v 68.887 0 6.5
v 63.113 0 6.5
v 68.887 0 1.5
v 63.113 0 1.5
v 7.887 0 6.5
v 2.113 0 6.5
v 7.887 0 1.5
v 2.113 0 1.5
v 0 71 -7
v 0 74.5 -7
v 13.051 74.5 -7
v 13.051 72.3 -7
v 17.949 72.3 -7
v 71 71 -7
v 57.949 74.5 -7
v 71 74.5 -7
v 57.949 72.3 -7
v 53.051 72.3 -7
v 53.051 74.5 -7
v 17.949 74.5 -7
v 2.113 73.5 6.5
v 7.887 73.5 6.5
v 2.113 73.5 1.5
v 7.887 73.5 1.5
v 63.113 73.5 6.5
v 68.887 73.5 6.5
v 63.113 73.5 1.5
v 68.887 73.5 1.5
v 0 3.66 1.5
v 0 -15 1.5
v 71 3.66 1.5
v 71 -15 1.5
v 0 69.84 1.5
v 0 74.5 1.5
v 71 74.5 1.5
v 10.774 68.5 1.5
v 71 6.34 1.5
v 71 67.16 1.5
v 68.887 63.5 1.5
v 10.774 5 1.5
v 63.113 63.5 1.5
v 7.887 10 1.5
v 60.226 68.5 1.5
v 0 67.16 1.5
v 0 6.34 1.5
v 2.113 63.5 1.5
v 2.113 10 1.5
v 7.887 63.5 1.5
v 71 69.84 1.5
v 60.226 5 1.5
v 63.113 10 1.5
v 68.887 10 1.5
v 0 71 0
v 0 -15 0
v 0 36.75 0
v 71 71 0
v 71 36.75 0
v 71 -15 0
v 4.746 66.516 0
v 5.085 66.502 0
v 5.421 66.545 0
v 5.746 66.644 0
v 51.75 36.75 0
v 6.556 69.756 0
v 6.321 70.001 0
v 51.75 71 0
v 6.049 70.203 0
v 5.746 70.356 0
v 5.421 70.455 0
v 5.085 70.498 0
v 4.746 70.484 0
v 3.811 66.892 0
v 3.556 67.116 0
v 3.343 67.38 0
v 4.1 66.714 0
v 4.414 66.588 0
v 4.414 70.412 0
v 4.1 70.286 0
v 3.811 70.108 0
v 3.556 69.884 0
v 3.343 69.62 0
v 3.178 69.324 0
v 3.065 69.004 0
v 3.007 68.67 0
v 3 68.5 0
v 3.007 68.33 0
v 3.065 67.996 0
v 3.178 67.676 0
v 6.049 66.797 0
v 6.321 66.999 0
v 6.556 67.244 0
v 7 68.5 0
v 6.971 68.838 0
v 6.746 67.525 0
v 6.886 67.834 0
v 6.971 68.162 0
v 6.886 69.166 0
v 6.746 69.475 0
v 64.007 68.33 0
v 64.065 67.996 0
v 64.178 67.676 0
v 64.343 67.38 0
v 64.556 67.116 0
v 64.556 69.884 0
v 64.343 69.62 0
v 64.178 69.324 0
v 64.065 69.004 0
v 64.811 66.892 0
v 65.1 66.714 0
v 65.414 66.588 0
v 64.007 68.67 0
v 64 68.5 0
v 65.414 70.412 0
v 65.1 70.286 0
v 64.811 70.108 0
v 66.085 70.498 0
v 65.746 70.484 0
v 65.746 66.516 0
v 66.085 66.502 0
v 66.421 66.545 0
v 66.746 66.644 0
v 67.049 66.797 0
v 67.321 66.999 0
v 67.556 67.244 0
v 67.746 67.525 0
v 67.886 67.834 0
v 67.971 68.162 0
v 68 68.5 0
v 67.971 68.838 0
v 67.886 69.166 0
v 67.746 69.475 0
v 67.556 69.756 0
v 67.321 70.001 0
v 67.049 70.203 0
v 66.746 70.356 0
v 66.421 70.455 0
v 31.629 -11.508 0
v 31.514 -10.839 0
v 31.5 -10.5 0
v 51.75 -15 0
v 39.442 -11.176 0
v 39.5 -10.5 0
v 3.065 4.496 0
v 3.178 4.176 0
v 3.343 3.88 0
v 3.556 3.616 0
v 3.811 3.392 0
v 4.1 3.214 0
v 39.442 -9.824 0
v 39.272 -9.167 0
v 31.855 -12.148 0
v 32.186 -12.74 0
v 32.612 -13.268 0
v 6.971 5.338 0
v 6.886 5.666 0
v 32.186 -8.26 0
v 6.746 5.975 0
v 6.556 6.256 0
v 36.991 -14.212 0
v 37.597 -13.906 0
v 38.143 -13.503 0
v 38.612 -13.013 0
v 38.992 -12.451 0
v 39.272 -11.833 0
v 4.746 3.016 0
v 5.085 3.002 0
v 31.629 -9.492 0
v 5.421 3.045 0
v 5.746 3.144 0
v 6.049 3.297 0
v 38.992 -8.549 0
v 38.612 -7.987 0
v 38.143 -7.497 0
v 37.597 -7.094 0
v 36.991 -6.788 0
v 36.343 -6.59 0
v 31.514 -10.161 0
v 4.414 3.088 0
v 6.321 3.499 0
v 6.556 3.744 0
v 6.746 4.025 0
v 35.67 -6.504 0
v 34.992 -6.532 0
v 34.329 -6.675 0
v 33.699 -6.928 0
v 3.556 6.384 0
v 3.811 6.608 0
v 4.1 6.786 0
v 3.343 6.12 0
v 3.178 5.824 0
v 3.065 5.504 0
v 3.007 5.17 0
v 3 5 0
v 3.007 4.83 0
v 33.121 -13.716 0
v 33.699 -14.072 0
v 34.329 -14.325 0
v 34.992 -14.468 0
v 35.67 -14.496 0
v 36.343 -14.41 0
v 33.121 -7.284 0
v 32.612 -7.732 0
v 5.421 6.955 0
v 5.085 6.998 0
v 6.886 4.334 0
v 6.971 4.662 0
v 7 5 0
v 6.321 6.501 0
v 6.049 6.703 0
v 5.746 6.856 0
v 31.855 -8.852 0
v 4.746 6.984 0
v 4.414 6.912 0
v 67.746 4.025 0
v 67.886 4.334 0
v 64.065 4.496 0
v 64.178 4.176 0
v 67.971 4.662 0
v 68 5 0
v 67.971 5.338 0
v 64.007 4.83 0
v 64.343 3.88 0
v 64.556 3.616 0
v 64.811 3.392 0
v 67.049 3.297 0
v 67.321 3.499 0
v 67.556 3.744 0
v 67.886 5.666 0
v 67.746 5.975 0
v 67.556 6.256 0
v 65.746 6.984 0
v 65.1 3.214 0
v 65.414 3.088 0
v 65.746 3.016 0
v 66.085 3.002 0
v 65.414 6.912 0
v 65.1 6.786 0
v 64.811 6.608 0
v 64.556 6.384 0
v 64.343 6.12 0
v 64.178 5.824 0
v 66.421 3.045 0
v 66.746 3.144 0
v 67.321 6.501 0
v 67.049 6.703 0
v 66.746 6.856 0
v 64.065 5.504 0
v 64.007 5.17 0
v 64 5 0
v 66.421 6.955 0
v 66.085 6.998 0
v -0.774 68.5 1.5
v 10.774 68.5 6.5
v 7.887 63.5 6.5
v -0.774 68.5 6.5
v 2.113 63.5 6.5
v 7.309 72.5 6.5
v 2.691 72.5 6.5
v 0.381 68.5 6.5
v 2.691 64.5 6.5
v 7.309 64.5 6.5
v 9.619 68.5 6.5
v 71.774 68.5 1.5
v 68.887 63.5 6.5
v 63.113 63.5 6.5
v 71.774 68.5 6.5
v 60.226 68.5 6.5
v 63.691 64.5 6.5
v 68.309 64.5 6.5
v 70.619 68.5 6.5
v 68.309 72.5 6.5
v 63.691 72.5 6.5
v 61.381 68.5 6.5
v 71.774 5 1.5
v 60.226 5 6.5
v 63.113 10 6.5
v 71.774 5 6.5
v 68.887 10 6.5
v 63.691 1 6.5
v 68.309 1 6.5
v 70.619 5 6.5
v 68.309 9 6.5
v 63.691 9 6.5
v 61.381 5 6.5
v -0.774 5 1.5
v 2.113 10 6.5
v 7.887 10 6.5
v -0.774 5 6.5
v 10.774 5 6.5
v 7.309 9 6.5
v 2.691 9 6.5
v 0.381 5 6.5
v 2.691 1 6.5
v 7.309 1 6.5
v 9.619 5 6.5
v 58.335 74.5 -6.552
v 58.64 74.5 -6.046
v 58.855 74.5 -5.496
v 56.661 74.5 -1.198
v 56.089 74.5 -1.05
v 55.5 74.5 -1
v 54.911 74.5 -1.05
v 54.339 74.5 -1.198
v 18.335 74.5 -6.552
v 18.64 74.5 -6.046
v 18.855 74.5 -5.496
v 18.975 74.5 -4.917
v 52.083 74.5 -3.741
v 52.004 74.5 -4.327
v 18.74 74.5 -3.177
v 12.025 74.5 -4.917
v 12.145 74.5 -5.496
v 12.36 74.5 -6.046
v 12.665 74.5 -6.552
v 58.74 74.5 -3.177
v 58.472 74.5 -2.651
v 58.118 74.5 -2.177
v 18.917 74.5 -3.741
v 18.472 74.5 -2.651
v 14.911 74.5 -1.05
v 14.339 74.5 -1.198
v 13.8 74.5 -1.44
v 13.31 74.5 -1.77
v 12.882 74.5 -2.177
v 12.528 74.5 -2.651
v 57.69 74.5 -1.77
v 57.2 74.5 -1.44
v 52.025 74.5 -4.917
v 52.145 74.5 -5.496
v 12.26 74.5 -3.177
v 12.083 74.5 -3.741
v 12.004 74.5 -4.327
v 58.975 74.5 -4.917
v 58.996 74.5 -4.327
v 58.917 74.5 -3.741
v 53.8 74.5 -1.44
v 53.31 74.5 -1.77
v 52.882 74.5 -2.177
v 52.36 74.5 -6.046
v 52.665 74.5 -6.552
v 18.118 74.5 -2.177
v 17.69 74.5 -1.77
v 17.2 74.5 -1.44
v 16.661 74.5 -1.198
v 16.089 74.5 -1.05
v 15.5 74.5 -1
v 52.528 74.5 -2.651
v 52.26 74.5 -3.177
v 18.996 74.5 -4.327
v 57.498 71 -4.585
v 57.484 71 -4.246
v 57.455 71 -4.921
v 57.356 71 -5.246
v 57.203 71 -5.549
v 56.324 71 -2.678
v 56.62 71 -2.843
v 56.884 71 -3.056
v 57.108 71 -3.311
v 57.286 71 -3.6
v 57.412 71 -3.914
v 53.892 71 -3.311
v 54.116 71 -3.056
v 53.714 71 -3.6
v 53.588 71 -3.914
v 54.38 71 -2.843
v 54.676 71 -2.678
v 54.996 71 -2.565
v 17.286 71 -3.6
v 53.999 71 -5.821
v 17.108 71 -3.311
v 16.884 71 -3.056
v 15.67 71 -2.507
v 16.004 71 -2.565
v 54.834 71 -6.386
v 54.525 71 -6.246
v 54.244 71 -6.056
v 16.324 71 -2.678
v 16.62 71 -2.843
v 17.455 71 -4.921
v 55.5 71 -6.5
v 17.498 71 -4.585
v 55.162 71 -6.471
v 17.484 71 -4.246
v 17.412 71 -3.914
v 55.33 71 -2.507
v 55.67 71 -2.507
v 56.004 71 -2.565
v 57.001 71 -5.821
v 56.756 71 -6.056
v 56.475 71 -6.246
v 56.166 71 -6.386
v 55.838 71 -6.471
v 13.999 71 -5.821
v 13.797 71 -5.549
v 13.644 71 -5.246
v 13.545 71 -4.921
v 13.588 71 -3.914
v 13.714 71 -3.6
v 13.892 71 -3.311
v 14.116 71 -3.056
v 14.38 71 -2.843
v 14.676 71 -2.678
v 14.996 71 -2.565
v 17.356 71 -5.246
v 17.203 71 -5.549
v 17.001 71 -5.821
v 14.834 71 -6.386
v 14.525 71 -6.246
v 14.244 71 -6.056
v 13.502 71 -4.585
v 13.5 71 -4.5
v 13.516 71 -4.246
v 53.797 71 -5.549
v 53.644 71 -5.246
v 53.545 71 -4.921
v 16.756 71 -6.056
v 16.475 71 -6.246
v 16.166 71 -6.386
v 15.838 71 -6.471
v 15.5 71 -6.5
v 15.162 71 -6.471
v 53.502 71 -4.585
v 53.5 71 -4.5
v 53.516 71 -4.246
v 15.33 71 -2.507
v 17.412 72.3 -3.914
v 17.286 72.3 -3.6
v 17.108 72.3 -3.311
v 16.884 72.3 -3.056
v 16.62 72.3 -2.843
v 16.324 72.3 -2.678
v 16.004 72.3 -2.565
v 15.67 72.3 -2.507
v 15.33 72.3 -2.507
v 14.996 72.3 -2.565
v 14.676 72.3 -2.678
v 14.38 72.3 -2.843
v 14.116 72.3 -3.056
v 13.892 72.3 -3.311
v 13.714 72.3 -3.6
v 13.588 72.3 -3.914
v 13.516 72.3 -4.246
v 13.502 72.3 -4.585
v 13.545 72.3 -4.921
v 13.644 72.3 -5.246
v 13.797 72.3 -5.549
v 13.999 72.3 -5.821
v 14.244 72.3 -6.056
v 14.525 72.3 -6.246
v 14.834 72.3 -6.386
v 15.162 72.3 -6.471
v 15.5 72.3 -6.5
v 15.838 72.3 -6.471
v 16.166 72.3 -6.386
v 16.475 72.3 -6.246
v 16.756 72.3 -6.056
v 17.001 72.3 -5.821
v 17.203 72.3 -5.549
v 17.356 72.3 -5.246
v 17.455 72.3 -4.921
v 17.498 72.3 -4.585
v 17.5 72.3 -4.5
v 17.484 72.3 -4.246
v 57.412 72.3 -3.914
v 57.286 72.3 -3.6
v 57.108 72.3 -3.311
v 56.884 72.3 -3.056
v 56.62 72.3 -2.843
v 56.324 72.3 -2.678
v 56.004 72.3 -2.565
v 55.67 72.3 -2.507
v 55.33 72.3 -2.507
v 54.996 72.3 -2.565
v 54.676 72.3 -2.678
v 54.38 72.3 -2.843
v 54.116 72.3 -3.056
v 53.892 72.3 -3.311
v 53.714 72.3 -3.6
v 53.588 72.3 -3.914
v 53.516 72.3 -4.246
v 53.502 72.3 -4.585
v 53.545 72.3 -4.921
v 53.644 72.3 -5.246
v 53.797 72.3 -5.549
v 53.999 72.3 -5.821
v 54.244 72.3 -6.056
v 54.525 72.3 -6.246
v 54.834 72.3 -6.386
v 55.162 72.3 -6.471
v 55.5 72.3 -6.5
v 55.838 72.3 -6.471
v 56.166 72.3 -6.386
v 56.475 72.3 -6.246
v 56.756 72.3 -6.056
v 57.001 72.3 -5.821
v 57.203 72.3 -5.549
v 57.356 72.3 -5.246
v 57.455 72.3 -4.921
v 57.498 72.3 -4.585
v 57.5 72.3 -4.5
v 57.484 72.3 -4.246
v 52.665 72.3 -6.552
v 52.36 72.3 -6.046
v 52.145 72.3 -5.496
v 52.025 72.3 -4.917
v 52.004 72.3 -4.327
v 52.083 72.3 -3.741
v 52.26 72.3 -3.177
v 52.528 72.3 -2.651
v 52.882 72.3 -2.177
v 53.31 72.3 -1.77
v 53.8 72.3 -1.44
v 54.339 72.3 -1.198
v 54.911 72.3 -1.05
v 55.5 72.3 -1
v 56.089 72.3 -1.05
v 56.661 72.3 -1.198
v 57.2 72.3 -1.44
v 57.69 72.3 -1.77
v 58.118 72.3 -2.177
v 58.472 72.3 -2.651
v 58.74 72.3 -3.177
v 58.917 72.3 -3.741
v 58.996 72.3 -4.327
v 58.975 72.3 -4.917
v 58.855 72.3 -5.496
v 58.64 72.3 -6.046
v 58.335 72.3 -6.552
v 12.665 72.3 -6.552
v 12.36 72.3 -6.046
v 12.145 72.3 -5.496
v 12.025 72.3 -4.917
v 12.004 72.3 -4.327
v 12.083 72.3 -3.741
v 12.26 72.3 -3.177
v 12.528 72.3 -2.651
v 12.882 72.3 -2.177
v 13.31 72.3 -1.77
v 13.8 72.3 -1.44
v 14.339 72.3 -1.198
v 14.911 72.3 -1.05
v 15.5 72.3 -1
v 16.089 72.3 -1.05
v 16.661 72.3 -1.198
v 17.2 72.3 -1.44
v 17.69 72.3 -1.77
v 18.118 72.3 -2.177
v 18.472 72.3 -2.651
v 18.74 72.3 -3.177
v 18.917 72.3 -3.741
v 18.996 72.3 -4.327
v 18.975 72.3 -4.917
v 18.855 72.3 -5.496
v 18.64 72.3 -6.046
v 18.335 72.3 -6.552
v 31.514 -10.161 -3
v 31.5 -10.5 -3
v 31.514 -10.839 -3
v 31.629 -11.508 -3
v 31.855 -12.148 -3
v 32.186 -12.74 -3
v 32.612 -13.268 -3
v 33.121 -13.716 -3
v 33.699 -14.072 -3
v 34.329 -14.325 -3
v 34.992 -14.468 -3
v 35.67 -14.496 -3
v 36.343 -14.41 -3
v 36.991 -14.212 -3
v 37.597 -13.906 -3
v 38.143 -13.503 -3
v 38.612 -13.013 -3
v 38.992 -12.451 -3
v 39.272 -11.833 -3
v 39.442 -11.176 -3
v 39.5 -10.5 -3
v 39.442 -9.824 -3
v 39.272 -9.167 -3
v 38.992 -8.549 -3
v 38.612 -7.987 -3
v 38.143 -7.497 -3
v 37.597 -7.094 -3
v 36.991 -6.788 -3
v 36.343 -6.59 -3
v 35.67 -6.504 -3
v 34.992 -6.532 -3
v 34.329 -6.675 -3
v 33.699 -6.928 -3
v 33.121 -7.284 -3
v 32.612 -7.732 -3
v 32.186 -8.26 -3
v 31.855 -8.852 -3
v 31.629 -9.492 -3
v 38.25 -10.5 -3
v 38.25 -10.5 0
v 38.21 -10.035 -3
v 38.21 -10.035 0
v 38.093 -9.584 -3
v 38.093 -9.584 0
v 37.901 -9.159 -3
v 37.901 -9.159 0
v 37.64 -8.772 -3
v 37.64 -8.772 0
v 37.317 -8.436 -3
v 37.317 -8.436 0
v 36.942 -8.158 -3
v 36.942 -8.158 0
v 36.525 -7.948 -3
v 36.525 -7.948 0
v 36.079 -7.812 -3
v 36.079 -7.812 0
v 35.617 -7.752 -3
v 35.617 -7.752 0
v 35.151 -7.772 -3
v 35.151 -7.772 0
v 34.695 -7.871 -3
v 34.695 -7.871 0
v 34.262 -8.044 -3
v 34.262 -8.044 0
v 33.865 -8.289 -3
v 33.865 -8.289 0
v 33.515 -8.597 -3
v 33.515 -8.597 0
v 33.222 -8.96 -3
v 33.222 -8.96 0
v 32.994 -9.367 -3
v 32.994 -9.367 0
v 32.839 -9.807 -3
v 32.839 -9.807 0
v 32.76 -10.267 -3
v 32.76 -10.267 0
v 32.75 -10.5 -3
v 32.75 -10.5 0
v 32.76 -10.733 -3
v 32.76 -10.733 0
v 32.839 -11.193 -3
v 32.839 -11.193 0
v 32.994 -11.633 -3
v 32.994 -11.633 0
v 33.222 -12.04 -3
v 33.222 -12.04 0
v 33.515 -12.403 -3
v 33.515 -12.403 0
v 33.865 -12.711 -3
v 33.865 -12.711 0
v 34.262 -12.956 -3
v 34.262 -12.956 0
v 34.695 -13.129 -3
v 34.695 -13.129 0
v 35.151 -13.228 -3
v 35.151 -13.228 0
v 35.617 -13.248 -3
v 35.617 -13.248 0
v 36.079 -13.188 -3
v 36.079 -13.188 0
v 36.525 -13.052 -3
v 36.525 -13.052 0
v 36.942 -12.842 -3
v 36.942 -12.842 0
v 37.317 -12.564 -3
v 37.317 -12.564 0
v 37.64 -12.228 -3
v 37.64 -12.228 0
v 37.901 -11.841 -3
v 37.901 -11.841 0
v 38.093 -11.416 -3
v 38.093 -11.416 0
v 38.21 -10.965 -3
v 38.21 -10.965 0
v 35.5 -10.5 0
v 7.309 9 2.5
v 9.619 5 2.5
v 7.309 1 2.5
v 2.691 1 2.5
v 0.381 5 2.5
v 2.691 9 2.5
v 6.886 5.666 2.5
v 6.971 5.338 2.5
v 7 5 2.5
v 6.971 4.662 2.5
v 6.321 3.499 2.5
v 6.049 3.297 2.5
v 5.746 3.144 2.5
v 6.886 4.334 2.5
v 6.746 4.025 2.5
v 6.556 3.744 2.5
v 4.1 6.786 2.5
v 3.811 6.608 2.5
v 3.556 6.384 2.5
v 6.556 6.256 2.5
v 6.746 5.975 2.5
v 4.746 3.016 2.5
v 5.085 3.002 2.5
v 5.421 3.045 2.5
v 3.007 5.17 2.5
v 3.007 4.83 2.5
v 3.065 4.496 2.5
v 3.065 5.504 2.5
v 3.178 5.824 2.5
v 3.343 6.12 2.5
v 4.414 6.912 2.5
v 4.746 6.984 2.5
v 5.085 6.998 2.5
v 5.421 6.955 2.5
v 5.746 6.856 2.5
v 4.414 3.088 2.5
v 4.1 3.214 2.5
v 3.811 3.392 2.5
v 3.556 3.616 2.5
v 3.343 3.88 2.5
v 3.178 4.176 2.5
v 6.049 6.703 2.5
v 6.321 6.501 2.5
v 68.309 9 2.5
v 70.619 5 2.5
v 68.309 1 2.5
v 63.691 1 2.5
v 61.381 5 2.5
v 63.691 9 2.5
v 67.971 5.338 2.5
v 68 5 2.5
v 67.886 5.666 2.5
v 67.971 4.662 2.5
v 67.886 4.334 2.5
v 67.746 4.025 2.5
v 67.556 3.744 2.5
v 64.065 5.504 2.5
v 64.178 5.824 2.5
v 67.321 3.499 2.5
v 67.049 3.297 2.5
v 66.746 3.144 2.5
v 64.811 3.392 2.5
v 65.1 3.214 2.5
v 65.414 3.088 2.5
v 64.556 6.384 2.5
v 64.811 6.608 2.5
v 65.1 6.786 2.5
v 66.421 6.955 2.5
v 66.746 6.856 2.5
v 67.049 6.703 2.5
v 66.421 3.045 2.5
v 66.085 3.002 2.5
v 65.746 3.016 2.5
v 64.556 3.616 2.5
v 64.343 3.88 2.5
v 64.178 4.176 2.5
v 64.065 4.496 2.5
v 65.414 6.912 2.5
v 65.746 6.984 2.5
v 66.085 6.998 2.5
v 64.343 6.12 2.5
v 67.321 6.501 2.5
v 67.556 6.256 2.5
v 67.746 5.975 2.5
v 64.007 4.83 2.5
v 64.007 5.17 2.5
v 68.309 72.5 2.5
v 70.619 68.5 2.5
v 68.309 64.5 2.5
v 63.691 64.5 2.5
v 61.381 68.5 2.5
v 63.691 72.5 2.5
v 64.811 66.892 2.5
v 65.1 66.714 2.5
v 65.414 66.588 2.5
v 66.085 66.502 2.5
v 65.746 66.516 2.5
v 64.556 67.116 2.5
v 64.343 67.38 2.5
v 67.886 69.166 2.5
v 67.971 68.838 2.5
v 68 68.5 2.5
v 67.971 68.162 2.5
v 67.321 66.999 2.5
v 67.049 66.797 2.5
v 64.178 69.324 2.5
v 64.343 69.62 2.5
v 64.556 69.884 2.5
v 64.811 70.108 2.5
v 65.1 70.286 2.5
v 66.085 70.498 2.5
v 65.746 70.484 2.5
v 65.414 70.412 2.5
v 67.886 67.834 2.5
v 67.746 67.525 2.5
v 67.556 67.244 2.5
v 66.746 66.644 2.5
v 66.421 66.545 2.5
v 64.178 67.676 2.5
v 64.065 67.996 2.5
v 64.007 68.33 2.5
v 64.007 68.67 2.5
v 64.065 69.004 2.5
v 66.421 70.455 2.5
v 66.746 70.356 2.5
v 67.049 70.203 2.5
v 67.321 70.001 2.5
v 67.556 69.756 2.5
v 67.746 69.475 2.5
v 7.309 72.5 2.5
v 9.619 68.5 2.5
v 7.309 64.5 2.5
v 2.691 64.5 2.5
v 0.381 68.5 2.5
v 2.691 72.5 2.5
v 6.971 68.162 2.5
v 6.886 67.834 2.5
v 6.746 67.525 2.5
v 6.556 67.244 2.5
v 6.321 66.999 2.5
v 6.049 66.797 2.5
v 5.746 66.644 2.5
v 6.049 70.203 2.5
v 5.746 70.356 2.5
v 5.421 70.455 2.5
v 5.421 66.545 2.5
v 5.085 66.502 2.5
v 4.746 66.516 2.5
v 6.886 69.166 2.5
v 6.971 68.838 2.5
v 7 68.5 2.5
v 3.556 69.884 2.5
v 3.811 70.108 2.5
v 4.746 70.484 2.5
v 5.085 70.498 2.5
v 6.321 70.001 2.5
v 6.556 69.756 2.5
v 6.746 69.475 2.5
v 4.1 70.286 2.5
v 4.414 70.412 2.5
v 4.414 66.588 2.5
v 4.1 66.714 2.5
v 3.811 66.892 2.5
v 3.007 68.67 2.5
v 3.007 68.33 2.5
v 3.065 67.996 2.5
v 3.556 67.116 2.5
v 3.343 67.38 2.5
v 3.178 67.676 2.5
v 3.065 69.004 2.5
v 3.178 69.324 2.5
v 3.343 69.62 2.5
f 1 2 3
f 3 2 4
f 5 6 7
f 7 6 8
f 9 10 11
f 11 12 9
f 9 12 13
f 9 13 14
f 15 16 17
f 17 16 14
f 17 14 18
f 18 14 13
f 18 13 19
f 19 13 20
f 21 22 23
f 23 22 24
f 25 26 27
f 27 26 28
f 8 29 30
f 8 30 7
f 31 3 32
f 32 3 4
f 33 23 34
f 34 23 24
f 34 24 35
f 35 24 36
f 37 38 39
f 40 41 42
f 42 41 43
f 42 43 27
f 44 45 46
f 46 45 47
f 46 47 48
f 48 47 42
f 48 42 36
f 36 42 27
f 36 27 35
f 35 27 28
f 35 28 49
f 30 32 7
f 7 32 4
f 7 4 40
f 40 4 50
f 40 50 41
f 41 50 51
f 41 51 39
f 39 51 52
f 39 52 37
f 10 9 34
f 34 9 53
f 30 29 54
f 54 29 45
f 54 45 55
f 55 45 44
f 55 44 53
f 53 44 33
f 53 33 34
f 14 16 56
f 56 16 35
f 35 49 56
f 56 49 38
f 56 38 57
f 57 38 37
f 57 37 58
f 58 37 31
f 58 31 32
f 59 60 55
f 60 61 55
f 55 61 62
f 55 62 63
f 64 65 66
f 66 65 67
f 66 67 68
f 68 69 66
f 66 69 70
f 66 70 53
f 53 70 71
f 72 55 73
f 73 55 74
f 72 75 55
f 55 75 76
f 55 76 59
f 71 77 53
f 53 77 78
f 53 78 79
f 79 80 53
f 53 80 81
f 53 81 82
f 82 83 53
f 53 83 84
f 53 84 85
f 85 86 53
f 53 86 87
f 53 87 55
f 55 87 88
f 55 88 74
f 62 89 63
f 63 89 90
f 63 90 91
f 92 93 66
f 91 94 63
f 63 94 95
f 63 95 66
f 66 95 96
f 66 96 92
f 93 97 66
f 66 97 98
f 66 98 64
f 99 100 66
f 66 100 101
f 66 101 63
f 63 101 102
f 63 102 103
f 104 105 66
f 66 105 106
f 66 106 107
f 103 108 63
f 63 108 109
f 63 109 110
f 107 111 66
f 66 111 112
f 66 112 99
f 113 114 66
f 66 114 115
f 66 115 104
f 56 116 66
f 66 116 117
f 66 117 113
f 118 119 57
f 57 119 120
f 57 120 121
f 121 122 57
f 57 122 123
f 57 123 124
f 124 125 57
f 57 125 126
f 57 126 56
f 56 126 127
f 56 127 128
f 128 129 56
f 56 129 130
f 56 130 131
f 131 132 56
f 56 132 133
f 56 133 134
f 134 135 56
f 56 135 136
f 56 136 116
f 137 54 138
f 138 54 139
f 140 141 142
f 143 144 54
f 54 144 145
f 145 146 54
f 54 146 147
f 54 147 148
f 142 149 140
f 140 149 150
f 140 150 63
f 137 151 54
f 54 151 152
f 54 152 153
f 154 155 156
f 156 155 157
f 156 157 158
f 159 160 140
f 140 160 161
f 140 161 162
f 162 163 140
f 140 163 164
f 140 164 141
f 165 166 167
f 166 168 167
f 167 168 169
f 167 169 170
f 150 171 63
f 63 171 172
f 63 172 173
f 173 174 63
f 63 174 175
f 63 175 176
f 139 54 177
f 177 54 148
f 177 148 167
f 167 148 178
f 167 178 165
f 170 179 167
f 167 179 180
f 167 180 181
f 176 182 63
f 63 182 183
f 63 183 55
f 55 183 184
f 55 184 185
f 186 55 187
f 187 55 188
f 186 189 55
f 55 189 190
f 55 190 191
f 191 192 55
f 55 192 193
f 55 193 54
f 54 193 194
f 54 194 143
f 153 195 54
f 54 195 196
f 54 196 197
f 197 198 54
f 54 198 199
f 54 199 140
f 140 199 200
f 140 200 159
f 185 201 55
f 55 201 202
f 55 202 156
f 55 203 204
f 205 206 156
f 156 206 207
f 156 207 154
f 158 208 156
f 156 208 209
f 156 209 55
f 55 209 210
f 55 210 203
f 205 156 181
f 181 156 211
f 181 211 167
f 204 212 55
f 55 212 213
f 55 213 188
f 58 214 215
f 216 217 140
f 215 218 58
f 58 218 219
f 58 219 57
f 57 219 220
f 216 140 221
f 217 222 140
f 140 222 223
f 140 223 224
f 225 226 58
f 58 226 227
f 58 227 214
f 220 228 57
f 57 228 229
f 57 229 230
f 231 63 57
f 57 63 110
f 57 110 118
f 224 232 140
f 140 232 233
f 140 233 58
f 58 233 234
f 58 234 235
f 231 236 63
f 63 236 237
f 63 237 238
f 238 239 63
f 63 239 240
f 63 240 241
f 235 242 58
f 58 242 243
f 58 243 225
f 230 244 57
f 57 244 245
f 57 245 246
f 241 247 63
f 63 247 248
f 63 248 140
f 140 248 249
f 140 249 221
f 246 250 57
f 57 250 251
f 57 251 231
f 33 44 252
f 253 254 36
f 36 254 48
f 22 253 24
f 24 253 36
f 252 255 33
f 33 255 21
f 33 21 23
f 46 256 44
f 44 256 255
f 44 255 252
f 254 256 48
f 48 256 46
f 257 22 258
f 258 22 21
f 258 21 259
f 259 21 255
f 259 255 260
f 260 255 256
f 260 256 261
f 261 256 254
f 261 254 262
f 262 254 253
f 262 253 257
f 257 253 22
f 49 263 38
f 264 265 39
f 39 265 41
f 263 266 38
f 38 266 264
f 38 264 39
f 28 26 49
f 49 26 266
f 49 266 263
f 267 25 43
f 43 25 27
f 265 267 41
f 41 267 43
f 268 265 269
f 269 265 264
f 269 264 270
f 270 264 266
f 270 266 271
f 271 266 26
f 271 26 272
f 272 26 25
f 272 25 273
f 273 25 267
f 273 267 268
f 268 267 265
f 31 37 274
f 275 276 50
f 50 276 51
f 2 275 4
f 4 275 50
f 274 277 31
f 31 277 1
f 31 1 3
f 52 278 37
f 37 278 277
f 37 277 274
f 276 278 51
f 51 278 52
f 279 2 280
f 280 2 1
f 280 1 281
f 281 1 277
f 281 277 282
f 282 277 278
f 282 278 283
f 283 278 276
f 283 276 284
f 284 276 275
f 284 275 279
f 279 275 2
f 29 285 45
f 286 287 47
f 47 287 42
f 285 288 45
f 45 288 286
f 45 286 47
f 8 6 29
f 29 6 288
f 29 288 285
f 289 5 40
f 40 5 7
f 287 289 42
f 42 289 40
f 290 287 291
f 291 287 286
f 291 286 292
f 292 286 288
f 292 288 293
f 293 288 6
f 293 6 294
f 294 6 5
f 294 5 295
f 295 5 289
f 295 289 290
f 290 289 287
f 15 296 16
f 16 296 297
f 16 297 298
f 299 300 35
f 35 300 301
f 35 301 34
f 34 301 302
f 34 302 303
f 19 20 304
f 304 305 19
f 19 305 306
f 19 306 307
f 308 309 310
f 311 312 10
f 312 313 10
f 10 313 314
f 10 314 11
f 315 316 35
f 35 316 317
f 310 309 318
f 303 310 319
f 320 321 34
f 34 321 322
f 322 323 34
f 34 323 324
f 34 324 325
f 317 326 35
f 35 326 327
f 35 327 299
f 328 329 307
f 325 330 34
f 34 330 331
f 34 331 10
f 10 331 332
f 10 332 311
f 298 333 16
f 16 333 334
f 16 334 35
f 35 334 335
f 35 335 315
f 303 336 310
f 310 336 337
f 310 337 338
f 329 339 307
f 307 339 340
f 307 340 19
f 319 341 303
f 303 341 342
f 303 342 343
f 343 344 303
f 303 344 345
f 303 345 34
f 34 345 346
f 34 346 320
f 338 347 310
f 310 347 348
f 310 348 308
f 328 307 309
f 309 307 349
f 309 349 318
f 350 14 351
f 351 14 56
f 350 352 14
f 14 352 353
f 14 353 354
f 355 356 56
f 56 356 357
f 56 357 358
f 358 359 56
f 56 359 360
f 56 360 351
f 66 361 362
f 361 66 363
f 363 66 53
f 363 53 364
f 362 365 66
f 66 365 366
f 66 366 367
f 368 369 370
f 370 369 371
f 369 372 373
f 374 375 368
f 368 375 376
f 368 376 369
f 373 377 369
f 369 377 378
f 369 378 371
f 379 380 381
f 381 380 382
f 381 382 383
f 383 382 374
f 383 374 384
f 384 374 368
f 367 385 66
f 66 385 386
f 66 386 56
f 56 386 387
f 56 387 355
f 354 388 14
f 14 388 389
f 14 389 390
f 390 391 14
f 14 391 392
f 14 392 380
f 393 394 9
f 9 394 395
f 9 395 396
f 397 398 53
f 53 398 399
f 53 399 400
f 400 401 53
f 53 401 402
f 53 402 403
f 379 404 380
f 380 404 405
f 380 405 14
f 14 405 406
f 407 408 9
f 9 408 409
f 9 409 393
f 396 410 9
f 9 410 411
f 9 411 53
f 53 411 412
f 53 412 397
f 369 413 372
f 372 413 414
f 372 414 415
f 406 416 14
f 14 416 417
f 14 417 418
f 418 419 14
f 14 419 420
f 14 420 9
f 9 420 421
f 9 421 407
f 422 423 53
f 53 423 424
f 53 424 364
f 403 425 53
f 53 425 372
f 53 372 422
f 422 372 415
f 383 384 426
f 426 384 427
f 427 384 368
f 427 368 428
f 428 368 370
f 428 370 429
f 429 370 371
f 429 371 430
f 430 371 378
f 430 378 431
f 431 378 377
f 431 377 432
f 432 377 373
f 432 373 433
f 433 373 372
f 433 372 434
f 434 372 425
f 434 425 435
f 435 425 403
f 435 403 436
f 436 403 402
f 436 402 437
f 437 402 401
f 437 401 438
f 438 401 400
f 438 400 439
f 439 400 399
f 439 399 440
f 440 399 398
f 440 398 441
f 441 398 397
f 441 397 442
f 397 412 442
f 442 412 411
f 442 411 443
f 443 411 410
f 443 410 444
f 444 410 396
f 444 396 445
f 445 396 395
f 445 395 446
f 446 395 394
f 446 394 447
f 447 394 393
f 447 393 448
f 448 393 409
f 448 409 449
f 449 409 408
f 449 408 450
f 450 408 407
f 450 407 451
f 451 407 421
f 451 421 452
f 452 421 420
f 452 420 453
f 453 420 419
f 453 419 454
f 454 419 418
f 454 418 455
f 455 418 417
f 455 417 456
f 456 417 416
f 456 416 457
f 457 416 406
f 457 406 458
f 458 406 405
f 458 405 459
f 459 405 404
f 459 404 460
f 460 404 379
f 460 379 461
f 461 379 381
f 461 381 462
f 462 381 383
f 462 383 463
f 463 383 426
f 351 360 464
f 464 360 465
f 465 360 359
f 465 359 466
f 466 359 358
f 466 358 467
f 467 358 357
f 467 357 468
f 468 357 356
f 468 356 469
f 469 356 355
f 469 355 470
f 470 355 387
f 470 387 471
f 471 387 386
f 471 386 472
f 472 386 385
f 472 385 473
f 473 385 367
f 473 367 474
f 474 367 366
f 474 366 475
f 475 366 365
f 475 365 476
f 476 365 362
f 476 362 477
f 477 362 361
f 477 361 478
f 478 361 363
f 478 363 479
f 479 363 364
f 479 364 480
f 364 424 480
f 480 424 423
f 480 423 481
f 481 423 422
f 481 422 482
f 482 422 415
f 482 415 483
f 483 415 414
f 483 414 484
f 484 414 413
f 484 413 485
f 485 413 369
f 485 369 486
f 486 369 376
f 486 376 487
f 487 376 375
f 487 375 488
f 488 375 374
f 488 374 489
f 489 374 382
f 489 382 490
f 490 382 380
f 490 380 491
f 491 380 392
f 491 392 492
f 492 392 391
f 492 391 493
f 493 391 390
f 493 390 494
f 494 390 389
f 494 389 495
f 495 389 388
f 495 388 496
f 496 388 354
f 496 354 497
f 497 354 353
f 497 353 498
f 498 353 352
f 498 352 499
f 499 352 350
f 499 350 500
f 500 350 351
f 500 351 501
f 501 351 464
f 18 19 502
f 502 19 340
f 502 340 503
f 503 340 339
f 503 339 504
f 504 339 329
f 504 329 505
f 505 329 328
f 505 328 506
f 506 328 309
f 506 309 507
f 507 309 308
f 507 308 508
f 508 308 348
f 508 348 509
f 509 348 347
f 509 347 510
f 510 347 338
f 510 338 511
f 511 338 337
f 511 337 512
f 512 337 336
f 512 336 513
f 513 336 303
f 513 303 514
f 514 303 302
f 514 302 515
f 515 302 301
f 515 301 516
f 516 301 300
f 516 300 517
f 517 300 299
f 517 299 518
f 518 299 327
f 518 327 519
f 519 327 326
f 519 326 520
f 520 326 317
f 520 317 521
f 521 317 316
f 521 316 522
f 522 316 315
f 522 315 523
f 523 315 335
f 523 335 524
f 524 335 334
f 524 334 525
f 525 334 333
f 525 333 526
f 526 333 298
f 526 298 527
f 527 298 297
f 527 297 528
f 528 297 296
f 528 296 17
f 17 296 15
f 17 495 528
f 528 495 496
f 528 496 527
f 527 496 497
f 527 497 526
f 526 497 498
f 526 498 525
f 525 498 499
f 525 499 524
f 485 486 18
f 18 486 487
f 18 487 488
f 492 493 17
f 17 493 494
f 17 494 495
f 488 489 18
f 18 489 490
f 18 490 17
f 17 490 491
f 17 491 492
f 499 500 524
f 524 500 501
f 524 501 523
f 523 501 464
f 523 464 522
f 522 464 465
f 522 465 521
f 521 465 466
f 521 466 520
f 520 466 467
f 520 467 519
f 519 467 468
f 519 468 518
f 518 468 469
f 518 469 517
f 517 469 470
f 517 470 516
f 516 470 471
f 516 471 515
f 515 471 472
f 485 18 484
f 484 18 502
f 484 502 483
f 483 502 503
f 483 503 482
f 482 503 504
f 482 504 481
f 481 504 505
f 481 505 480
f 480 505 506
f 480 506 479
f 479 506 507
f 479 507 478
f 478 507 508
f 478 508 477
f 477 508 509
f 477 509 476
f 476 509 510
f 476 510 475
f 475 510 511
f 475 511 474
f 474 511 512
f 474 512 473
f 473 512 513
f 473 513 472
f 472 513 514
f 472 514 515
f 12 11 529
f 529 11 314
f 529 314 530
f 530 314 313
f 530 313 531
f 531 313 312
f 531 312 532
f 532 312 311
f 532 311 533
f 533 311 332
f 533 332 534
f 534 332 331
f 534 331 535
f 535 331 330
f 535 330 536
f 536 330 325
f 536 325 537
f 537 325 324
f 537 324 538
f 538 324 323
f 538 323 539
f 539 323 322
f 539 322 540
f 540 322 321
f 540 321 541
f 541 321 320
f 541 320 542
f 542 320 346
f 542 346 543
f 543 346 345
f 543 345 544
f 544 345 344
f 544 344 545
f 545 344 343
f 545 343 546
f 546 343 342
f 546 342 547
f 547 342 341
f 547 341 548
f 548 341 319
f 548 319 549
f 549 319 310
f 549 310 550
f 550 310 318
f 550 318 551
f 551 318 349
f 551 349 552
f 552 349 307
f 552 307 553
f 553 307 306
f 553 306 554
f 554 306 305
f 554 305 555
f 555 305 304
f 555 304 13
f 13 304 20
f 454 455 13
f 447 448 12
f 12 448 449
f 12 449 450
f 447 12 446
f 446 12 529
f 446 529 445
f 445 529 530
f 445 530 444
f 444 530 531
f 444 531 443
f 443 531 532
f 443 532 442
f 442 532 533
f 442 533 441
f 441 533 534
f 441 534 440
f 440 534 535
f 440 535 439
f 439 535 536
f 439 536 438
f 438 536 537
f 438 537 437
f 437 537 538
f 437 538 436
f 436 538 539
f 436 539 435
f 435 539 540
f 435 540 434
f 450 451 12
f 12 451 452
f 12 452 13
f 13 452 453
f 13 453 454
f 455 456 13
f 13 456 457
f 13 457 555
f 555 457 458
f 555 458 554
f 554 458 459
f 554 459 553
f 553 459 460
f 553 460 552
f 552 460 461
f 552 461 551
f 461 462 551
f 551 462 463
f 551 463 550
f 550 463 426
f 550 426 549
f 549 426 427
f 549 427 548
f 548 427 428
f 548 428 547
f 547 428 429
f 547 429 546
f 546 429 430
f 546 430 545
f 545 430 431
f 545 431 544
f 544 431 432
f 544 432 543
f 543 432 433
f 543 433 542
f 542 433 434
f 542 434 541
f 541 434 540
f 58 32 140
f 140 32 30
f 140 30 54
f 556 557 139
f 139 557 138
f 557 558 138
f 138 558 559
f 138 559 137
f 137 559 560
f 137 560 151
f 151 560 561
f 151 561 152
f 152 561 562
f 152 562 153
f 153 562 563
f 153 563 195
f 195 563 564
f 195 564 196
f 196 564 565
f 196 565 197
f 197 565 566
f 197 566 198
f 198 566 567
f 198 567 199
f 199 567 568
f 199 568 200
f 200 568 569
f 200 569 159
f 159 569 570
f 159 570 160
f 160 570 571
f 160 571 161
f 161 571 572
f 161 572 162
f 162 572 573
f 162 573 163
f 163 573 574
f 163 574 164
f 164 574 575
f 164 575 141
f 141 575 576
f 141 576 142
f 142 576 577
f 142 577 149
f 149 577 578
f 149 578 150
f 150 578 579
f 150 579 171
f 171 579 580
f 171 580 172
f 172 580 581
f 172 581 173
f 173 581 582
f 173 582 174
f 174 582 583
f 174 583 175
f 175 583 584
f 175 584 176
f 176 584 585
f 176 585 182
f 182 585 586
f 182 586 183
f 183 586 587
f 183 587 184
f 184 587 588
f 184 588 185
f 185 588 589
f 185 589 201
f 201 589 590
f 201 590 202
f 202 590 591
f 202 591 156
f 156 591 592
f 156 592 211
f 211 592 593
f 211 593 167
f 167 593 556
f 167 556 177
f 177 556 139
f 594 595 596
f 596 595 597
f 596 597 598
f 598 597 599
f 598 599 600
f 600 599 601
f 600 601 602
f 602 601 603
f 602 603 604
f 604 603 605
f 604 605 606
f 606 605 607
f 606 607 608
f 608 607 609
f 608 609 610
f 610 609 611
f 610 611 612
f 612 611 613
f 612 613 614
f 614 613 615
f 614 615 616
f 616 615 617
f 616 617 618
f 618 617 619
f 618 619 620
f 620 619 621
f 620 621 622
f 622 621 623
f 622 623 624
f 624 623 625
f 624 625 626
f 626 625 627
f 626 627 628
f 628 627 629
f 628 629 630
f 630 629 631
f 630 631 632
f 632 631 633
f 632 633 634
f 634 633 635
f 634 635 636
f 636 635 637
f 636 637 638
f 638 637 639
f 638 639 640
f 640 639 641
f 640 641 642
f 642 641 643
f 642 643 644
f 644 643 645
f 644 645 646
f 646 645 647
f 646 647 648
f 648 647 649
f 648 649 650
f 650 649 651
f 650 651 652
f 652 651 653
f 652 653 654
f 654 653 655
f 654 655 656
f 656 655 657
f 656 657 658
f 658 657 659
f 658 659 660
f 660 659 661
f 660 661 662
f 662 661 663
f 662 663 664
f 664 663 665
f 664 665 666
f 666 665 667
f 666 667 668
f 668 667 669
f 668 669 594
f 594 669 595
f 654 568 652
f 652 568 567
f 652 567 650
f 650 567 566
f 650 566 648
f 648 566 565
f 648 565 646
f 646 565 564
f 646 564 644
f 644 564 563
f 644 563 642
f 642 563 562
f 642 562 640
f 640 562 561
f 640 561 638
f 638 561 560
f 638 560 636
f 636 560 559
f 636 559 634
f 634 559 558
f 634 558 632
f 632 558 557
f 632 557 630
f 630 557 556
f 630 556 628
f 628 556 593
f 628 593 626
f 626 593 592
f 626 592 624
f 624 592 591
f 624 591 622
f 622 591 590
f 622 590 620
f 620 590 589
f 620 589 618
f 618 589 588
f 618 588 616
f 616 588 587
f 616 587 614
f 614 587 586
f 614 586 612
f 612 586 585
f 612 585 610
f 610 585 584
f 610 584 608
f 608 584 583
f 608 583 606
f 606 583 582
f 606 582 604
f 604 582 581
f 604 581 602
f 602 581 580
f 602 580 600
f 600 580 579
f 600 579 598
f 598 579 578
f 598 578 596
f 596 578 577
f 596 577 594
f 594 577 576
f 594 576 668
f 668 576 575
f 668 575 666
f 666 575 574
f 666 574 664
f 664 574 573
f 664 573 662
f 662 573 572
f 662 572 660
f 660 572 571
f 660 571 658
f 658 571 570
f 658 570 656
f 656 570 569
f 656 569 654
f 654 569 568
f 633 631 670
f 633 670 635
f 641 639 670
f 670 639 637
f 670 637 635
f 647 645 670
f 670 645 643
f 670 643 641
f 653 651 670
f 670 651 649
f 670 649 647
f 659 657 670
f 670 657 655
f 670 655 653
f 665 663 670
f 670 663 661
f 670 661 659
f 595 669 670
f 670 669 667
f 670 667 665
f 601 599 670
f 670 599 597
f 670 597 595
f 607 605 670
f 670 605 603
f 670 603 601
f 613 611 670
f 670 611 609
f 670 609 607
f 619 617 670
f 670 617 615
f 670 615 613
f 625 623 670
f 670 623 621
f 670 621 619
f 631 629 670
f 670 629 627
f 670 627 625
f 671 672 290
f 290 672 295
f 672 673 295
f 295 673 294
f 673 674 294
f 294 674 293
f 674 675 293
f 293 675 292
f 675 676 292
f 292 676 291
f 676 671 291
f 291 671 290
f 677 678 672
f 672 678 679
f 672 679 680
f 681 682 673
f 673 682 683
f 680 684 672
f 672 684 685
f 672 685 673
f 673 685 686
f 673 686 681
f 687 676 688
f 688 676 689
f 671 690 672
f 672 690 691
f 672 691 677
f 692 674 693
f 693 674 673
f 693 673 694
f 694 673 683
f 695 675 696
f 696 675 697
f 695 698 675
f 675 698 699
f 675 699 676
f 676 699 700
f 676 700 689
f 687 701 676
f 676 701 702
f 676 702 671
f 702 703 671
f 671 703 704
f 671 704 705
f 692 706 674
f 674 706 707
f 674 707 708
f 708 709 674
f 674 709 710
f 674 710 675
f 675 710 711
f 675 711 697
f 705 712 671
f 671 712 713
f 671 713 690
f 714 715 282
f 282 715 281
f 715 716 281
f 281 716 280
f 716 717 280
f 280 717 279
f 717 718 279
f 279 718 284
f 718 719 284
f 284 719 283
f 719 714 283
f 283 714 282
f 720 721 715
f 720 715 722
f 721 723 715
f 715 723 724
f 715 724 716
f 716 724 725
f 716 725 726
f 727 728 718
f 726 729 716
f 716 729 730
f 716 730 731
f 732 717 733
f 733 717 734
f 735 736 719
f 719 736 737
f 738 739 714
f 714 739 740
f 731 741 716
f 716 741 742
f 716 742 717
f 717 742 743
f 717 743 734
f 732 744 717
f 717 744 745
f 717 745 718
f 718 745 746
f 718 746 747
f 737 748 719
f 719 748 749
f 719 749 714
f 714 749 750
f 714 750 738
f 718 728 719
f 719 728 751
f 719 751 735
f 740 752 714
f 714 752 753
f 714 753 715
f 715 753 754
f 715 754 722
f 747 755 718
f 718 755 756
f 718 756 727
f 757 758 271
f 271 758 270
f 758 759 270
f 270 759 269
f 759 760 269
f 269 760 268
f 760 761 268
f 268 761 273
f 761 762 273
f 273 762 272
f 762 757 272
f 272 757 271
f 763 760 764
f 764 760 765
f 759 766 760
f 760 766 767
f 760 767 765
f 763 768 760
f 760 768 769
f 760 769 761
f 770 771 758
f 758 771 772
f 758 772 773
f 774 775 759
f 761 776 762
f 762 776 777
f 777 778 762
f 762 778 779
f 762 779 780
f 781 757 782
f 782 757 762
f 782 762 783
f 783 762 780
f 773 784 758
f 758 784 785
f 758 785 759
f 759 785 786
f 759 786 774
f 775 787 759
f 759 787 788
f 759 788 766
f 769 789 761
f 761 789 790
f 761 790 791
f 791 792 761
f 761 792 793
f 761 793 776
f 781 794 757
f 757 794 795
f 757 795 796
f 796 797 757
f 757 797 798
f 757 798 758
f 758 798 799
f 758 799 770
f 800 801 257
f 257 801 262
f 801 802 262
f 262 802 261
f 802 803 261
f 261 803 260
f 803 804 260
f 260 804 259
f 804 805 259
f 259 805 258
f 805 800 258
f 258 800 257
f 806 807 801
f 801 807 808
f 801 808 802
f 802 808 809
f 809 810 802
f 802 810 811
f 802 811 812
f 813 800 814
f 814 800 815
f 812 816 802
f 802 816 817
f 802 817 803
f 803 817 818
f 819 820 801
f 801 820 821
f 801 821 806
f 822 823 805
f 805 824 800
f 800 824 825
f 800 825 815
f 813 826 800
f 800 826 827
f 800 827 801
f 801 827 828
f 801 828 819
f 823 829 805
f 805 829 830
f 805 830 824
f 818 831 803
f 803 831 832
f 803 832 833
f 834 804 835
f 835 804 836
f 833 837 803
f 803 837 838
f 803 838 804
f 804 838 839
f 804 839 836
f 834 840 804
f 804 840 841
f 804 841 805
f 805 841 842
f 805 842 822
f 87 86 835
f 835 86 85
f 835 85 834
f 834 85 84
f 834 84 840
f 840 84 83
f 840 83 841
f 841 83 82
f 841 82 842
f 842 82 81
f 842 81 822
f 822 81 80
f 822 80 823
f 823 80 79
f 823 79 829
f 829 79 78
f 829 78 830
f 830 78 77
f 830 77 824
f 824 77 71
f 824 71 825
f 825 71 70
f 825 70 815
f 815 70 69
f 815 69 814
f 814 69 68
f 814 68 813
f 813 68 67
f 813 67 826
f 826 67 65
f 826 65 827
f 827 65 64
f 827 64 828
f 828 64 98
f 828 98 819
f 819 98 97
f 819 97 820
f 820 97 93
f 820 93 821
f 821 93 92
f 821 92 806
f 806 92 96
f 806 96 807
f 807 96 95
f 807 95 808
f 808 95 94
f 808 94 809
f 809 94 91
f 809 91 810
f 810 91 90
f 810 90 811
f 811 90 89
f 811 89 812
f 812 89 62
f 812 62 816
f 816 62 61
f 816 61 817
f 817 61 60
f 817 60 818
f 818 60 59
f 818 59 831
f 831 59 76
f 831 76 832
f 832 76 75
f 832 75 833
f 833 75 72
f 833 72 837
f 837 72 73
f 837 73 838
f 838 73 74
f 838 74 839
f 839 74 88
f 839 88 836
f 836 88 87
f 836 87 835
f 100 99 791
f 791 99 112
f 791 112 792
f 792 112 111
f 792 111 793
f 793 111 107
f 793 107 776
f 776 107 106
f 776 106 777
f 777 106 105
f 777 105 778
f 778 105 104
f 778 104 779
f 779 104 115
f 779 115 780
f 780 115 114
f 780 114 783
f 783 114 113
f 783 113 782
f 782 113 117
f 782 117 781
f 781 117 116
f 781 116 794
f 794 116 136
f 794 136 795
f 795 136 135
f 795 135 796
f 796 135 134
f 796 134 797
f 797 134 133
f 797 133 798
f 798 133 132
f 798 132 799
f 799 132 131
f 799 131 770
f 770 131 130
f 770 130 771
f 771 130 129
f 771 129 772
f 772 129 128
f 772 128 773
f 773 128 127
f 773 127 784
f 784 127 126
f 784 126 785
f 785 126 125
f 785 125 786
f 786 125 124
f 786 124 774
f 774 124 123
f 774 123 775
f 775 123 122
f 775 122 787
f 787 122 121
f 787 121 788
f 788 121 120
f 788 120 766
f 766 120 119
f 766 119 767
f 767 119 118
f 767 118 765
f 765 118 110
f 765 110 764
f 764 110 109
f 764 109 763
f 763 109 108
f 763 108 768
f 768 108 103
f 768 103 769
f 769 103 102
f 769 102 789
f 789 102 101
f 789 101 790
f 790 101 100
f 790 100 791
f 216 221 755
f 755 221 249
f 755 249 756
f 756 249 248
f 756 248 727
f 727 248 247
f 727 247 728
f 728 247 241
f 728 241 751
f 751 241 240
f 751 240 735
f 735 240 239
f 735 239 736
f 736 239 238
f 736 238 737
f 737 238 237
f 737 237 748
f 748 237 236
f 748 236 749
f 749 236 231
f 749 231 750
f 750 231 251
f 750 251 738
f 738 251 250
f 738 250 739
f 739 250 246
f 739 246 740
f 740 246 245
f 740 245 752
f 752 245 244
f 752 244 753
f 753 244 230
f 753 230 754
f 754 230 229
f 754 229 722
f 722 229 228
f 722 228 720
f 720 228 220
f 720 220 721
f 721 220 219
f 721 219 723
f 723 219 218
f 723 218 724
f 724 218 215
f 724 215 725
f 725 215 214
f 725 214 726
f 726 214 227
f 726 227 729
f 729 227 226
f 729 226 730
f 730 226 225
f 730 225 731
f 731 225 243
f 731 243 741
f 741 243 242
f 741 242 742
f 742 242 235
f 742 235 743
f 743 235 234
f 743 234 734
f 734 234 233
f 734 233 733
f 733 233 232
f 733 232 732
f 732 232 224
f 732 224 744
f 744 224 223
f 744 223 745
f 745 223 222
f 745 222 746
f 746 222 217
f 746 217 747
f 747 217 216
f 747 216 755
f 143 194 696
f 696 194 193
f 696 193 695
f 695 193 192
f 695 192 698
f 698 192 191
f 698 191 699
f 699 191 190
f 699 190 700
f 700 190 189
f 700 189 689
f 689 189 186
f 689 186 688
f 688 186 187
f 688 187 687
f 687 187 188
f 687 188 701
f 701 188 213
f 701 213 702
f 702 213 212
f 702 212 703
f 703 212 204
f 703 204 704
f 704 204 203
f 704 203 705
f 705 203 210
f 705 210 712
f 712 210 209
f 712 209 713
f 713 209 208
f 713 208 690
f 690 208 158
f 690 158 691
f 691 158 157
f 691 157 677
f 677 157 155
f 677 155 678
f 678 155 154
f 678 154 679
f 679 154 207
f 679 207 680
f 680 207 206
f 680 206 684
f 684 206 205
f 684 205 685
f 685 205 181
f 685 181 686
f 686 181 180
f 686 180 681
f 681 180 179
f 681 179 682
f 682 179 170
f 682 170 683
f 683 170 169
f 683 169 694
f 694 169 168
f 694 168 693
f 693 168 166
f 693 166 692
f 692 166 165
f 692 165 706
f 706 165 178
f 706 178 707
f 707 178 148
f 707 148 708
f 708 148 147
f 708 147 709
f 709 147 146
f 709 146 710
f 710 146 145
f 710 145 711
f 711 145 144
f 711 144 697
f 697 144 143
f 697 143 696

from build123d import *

# Parameters (mm, degrees)
SKETCH2_W           = 71
SKETCH2_H           = 73.5
BOSS_EXTRUDE1_DEPTH = 1.5
BOSS_EXTRUDE2_DEPTH = 5
SKETCH20_W          = 71
SKETCH20_H          = 1
BOSS_EXTRUDE6_DEPTH = 1.5
SKETCH12_W          = 71
SKETCH12_H          = 7
BOSS_EXTRUDE3_DEPTH = 3.5
SKETCH13_R          = 2
CUT_EXTRUDE3_DEPTH  = 75.5
SKETCH14_R          = 3.5
CUT_EXTRUDE4_DEPTH  = 2.2
SKETCH15_W          = 71
SKETCH15_H          = 1.5
BOSS_EXTRUDE4_DEPTH = 15
SKETCH16_R          = 4
SKETCH16_R_2        = 2.75
BOSS_EXTRUDE5_DEPTH = 4.5
CUT_EXTRUDE5_DEPTH  = 4
SKETCH19_R          = 2
CUT_EXTRUDE6_DEPTH  = 14.5


with BuildPart() as part:
    # Sketch2 → Boss-Extrude1 (new body)
    with BuildSketch(Plane.XY):
        with Locations((35.5, 36.75)):
            Rectangle(SKETCH2_W, SKETCH2_H)
    extrude(amount=BOSS_EXTRUDE1_DEPTH)

    # Sketch3 → Boss-Extrude2 (add)
    with BuildSketch(Plane.XY.offset(1.5)):
        Polygon((10.773502692, 68.5), (7.886751346, 73.5), (2.113248654, 73.5), (-0.773502692, 68.5), (2.113248654, 63.5), (7.886751346, 63.5), align=None)
        Polygon((63.113248654, 63.5), (60.226497308, 68.5), (63.113248654, 73.5), (68.886751346, 73.5), (71.773502692, 68.5), (68.886751346, 63.5), align=None)
        Polygon((60.226497308, 5), (63.113248654, 0), (68.886751346, 0), (71.773502692, 5), (68.886751346, 10), (63.113248654, 10), align=None)
        Polygon((7.886751346, 10), (10.773502692, 5), (7.886751346, 0), (2.113248654, 0), (-0.773502692, 5), (2.113248654, 10), align=None)
    extrude(amount=BOSS_EXTRUDE2_DEPTH)

    # Sketch20 → Boss-Extrude6 (add)
    with BuildSketch(Plane.XY.offset(1.5)):
        with Locations((35.5, 74)):
            Rectangle(SKETCH20_W, SKETCH20_H)
    extrude(amount=-BOSS_EXTRUDE6_DEPTH)

    # Sketch12 → Boss-Extrude3 (add)
    with BuildSketch(Plane.XZ.offset(-74.5)):
        with Locations((35.5, -3.5)):
            Rectangle(SKETCH12_W, SKETCH12_H)
    extrude(amount=BOSS_EXTRUDE3_DEPTH)

    # Sketch13 → Cut-Extrude3 (cut, through all)
    with BuildSketch(Plane.XZ):
        with Locations((55.5, -4.5)):
            Circle(SKETCH13_R)
        with Locations((15.5, -4.5)):
            Circle(SKETCH13_R)
    extrude(amount=-CUT_EXTRUDE3_DEPTH, mode=Mode.SUBTRACT)

    # Sketch14 → Cut-Extrude4 (cut)
    with BuildSketch(Plane(origin=(0, 74.5, 0), x_dir=(-1, 0, 0), z_dir=(0, -1, 0))):
        with Locations((-55.5, 4.5)):
            Circle(SKETCH14_R)
        with Locations((-15.5, 4.5)):
            Circle(SKETCH14_R)
    extrude(amount=CUT_EXTRUDE4_DEPTH, mode=Mode.SUBTRACT)

    # Sketch15 → Boss-Extrude4 (add)
    with BuildSketch(Plane.XZ):
        with Locations((35.5, 0.75)):
            Rectangle(SKETCH15_W, SKETCH15_H)
    extrude(amount=BOSS_EXTRUDE4_DEPTH)

    # Sketch16 → Boss-Extrude5 (add)
    with BuildSketch(Plane.XY.offset(1.5)):
        with Locations((35.5, -10.5)):
            Circle(SKETCH16_R)
        with Locations((35.5, -10.5)):
            Circle(SKETCH16_R_2, mode=Mode.SUBTRACT)
    extrude(amount=-BOSS_EXTRUDE5_DEPTH)

    # Sketch17 → Cut-Extrude5 (cut)
    with BuildSketch(Plane.XY.offset(6.5)):
        Polygon((7.309401077, 72.5), (2.690598923, 72.5), (0.381197846, 68.5), (2.690598923, 64.5), (7.309401077, 64.5), (9.618802154, 68.5), align=None)
        Polygon((68.309401077, 72.5), (63.690598923, 72.5), (61.381197846, 68.5), (63.690598923, 64.5), (68.309401077, 64.5), (70.618802154, 68.5), align=None)
        Polygon((68.309401077, 9), (63.690598923, 9), (61.381197846, 5), (63.690598923, 1), (68.309401077, 1), (70.618802154, 5), align=None)
        Polygon((7.309401077, 9), (2.690598923, 9), (0.381197846, 5), (2.690598923, 1), (7.309401077, 1), (9.618802154, 5), align=None)
    extrude(amount=-CUT_EXTRUDE5_DEPTH, mode=Mode.SUBTRACT)

    # Sketch19 → Cut-Extrude6 (cut, through all)
    with BuildSketch(Plane.XY.offset(6.5)):
        with Locations((5, 68.5)):
            Circle(SKETCH19_R)
        with Locations((66, 68.5)):
            Circle(SKETCH19_R)
        with Locations((5, 5)):
            Circle(SKETCH19_R)
        with Locations((66, 5)):
            Circle(SKETCH19_R)
    extrude(amount=-CUT_EXTRUDE6_DEPTH, mode=Mode.SUBTRACT)


solid = part.part
